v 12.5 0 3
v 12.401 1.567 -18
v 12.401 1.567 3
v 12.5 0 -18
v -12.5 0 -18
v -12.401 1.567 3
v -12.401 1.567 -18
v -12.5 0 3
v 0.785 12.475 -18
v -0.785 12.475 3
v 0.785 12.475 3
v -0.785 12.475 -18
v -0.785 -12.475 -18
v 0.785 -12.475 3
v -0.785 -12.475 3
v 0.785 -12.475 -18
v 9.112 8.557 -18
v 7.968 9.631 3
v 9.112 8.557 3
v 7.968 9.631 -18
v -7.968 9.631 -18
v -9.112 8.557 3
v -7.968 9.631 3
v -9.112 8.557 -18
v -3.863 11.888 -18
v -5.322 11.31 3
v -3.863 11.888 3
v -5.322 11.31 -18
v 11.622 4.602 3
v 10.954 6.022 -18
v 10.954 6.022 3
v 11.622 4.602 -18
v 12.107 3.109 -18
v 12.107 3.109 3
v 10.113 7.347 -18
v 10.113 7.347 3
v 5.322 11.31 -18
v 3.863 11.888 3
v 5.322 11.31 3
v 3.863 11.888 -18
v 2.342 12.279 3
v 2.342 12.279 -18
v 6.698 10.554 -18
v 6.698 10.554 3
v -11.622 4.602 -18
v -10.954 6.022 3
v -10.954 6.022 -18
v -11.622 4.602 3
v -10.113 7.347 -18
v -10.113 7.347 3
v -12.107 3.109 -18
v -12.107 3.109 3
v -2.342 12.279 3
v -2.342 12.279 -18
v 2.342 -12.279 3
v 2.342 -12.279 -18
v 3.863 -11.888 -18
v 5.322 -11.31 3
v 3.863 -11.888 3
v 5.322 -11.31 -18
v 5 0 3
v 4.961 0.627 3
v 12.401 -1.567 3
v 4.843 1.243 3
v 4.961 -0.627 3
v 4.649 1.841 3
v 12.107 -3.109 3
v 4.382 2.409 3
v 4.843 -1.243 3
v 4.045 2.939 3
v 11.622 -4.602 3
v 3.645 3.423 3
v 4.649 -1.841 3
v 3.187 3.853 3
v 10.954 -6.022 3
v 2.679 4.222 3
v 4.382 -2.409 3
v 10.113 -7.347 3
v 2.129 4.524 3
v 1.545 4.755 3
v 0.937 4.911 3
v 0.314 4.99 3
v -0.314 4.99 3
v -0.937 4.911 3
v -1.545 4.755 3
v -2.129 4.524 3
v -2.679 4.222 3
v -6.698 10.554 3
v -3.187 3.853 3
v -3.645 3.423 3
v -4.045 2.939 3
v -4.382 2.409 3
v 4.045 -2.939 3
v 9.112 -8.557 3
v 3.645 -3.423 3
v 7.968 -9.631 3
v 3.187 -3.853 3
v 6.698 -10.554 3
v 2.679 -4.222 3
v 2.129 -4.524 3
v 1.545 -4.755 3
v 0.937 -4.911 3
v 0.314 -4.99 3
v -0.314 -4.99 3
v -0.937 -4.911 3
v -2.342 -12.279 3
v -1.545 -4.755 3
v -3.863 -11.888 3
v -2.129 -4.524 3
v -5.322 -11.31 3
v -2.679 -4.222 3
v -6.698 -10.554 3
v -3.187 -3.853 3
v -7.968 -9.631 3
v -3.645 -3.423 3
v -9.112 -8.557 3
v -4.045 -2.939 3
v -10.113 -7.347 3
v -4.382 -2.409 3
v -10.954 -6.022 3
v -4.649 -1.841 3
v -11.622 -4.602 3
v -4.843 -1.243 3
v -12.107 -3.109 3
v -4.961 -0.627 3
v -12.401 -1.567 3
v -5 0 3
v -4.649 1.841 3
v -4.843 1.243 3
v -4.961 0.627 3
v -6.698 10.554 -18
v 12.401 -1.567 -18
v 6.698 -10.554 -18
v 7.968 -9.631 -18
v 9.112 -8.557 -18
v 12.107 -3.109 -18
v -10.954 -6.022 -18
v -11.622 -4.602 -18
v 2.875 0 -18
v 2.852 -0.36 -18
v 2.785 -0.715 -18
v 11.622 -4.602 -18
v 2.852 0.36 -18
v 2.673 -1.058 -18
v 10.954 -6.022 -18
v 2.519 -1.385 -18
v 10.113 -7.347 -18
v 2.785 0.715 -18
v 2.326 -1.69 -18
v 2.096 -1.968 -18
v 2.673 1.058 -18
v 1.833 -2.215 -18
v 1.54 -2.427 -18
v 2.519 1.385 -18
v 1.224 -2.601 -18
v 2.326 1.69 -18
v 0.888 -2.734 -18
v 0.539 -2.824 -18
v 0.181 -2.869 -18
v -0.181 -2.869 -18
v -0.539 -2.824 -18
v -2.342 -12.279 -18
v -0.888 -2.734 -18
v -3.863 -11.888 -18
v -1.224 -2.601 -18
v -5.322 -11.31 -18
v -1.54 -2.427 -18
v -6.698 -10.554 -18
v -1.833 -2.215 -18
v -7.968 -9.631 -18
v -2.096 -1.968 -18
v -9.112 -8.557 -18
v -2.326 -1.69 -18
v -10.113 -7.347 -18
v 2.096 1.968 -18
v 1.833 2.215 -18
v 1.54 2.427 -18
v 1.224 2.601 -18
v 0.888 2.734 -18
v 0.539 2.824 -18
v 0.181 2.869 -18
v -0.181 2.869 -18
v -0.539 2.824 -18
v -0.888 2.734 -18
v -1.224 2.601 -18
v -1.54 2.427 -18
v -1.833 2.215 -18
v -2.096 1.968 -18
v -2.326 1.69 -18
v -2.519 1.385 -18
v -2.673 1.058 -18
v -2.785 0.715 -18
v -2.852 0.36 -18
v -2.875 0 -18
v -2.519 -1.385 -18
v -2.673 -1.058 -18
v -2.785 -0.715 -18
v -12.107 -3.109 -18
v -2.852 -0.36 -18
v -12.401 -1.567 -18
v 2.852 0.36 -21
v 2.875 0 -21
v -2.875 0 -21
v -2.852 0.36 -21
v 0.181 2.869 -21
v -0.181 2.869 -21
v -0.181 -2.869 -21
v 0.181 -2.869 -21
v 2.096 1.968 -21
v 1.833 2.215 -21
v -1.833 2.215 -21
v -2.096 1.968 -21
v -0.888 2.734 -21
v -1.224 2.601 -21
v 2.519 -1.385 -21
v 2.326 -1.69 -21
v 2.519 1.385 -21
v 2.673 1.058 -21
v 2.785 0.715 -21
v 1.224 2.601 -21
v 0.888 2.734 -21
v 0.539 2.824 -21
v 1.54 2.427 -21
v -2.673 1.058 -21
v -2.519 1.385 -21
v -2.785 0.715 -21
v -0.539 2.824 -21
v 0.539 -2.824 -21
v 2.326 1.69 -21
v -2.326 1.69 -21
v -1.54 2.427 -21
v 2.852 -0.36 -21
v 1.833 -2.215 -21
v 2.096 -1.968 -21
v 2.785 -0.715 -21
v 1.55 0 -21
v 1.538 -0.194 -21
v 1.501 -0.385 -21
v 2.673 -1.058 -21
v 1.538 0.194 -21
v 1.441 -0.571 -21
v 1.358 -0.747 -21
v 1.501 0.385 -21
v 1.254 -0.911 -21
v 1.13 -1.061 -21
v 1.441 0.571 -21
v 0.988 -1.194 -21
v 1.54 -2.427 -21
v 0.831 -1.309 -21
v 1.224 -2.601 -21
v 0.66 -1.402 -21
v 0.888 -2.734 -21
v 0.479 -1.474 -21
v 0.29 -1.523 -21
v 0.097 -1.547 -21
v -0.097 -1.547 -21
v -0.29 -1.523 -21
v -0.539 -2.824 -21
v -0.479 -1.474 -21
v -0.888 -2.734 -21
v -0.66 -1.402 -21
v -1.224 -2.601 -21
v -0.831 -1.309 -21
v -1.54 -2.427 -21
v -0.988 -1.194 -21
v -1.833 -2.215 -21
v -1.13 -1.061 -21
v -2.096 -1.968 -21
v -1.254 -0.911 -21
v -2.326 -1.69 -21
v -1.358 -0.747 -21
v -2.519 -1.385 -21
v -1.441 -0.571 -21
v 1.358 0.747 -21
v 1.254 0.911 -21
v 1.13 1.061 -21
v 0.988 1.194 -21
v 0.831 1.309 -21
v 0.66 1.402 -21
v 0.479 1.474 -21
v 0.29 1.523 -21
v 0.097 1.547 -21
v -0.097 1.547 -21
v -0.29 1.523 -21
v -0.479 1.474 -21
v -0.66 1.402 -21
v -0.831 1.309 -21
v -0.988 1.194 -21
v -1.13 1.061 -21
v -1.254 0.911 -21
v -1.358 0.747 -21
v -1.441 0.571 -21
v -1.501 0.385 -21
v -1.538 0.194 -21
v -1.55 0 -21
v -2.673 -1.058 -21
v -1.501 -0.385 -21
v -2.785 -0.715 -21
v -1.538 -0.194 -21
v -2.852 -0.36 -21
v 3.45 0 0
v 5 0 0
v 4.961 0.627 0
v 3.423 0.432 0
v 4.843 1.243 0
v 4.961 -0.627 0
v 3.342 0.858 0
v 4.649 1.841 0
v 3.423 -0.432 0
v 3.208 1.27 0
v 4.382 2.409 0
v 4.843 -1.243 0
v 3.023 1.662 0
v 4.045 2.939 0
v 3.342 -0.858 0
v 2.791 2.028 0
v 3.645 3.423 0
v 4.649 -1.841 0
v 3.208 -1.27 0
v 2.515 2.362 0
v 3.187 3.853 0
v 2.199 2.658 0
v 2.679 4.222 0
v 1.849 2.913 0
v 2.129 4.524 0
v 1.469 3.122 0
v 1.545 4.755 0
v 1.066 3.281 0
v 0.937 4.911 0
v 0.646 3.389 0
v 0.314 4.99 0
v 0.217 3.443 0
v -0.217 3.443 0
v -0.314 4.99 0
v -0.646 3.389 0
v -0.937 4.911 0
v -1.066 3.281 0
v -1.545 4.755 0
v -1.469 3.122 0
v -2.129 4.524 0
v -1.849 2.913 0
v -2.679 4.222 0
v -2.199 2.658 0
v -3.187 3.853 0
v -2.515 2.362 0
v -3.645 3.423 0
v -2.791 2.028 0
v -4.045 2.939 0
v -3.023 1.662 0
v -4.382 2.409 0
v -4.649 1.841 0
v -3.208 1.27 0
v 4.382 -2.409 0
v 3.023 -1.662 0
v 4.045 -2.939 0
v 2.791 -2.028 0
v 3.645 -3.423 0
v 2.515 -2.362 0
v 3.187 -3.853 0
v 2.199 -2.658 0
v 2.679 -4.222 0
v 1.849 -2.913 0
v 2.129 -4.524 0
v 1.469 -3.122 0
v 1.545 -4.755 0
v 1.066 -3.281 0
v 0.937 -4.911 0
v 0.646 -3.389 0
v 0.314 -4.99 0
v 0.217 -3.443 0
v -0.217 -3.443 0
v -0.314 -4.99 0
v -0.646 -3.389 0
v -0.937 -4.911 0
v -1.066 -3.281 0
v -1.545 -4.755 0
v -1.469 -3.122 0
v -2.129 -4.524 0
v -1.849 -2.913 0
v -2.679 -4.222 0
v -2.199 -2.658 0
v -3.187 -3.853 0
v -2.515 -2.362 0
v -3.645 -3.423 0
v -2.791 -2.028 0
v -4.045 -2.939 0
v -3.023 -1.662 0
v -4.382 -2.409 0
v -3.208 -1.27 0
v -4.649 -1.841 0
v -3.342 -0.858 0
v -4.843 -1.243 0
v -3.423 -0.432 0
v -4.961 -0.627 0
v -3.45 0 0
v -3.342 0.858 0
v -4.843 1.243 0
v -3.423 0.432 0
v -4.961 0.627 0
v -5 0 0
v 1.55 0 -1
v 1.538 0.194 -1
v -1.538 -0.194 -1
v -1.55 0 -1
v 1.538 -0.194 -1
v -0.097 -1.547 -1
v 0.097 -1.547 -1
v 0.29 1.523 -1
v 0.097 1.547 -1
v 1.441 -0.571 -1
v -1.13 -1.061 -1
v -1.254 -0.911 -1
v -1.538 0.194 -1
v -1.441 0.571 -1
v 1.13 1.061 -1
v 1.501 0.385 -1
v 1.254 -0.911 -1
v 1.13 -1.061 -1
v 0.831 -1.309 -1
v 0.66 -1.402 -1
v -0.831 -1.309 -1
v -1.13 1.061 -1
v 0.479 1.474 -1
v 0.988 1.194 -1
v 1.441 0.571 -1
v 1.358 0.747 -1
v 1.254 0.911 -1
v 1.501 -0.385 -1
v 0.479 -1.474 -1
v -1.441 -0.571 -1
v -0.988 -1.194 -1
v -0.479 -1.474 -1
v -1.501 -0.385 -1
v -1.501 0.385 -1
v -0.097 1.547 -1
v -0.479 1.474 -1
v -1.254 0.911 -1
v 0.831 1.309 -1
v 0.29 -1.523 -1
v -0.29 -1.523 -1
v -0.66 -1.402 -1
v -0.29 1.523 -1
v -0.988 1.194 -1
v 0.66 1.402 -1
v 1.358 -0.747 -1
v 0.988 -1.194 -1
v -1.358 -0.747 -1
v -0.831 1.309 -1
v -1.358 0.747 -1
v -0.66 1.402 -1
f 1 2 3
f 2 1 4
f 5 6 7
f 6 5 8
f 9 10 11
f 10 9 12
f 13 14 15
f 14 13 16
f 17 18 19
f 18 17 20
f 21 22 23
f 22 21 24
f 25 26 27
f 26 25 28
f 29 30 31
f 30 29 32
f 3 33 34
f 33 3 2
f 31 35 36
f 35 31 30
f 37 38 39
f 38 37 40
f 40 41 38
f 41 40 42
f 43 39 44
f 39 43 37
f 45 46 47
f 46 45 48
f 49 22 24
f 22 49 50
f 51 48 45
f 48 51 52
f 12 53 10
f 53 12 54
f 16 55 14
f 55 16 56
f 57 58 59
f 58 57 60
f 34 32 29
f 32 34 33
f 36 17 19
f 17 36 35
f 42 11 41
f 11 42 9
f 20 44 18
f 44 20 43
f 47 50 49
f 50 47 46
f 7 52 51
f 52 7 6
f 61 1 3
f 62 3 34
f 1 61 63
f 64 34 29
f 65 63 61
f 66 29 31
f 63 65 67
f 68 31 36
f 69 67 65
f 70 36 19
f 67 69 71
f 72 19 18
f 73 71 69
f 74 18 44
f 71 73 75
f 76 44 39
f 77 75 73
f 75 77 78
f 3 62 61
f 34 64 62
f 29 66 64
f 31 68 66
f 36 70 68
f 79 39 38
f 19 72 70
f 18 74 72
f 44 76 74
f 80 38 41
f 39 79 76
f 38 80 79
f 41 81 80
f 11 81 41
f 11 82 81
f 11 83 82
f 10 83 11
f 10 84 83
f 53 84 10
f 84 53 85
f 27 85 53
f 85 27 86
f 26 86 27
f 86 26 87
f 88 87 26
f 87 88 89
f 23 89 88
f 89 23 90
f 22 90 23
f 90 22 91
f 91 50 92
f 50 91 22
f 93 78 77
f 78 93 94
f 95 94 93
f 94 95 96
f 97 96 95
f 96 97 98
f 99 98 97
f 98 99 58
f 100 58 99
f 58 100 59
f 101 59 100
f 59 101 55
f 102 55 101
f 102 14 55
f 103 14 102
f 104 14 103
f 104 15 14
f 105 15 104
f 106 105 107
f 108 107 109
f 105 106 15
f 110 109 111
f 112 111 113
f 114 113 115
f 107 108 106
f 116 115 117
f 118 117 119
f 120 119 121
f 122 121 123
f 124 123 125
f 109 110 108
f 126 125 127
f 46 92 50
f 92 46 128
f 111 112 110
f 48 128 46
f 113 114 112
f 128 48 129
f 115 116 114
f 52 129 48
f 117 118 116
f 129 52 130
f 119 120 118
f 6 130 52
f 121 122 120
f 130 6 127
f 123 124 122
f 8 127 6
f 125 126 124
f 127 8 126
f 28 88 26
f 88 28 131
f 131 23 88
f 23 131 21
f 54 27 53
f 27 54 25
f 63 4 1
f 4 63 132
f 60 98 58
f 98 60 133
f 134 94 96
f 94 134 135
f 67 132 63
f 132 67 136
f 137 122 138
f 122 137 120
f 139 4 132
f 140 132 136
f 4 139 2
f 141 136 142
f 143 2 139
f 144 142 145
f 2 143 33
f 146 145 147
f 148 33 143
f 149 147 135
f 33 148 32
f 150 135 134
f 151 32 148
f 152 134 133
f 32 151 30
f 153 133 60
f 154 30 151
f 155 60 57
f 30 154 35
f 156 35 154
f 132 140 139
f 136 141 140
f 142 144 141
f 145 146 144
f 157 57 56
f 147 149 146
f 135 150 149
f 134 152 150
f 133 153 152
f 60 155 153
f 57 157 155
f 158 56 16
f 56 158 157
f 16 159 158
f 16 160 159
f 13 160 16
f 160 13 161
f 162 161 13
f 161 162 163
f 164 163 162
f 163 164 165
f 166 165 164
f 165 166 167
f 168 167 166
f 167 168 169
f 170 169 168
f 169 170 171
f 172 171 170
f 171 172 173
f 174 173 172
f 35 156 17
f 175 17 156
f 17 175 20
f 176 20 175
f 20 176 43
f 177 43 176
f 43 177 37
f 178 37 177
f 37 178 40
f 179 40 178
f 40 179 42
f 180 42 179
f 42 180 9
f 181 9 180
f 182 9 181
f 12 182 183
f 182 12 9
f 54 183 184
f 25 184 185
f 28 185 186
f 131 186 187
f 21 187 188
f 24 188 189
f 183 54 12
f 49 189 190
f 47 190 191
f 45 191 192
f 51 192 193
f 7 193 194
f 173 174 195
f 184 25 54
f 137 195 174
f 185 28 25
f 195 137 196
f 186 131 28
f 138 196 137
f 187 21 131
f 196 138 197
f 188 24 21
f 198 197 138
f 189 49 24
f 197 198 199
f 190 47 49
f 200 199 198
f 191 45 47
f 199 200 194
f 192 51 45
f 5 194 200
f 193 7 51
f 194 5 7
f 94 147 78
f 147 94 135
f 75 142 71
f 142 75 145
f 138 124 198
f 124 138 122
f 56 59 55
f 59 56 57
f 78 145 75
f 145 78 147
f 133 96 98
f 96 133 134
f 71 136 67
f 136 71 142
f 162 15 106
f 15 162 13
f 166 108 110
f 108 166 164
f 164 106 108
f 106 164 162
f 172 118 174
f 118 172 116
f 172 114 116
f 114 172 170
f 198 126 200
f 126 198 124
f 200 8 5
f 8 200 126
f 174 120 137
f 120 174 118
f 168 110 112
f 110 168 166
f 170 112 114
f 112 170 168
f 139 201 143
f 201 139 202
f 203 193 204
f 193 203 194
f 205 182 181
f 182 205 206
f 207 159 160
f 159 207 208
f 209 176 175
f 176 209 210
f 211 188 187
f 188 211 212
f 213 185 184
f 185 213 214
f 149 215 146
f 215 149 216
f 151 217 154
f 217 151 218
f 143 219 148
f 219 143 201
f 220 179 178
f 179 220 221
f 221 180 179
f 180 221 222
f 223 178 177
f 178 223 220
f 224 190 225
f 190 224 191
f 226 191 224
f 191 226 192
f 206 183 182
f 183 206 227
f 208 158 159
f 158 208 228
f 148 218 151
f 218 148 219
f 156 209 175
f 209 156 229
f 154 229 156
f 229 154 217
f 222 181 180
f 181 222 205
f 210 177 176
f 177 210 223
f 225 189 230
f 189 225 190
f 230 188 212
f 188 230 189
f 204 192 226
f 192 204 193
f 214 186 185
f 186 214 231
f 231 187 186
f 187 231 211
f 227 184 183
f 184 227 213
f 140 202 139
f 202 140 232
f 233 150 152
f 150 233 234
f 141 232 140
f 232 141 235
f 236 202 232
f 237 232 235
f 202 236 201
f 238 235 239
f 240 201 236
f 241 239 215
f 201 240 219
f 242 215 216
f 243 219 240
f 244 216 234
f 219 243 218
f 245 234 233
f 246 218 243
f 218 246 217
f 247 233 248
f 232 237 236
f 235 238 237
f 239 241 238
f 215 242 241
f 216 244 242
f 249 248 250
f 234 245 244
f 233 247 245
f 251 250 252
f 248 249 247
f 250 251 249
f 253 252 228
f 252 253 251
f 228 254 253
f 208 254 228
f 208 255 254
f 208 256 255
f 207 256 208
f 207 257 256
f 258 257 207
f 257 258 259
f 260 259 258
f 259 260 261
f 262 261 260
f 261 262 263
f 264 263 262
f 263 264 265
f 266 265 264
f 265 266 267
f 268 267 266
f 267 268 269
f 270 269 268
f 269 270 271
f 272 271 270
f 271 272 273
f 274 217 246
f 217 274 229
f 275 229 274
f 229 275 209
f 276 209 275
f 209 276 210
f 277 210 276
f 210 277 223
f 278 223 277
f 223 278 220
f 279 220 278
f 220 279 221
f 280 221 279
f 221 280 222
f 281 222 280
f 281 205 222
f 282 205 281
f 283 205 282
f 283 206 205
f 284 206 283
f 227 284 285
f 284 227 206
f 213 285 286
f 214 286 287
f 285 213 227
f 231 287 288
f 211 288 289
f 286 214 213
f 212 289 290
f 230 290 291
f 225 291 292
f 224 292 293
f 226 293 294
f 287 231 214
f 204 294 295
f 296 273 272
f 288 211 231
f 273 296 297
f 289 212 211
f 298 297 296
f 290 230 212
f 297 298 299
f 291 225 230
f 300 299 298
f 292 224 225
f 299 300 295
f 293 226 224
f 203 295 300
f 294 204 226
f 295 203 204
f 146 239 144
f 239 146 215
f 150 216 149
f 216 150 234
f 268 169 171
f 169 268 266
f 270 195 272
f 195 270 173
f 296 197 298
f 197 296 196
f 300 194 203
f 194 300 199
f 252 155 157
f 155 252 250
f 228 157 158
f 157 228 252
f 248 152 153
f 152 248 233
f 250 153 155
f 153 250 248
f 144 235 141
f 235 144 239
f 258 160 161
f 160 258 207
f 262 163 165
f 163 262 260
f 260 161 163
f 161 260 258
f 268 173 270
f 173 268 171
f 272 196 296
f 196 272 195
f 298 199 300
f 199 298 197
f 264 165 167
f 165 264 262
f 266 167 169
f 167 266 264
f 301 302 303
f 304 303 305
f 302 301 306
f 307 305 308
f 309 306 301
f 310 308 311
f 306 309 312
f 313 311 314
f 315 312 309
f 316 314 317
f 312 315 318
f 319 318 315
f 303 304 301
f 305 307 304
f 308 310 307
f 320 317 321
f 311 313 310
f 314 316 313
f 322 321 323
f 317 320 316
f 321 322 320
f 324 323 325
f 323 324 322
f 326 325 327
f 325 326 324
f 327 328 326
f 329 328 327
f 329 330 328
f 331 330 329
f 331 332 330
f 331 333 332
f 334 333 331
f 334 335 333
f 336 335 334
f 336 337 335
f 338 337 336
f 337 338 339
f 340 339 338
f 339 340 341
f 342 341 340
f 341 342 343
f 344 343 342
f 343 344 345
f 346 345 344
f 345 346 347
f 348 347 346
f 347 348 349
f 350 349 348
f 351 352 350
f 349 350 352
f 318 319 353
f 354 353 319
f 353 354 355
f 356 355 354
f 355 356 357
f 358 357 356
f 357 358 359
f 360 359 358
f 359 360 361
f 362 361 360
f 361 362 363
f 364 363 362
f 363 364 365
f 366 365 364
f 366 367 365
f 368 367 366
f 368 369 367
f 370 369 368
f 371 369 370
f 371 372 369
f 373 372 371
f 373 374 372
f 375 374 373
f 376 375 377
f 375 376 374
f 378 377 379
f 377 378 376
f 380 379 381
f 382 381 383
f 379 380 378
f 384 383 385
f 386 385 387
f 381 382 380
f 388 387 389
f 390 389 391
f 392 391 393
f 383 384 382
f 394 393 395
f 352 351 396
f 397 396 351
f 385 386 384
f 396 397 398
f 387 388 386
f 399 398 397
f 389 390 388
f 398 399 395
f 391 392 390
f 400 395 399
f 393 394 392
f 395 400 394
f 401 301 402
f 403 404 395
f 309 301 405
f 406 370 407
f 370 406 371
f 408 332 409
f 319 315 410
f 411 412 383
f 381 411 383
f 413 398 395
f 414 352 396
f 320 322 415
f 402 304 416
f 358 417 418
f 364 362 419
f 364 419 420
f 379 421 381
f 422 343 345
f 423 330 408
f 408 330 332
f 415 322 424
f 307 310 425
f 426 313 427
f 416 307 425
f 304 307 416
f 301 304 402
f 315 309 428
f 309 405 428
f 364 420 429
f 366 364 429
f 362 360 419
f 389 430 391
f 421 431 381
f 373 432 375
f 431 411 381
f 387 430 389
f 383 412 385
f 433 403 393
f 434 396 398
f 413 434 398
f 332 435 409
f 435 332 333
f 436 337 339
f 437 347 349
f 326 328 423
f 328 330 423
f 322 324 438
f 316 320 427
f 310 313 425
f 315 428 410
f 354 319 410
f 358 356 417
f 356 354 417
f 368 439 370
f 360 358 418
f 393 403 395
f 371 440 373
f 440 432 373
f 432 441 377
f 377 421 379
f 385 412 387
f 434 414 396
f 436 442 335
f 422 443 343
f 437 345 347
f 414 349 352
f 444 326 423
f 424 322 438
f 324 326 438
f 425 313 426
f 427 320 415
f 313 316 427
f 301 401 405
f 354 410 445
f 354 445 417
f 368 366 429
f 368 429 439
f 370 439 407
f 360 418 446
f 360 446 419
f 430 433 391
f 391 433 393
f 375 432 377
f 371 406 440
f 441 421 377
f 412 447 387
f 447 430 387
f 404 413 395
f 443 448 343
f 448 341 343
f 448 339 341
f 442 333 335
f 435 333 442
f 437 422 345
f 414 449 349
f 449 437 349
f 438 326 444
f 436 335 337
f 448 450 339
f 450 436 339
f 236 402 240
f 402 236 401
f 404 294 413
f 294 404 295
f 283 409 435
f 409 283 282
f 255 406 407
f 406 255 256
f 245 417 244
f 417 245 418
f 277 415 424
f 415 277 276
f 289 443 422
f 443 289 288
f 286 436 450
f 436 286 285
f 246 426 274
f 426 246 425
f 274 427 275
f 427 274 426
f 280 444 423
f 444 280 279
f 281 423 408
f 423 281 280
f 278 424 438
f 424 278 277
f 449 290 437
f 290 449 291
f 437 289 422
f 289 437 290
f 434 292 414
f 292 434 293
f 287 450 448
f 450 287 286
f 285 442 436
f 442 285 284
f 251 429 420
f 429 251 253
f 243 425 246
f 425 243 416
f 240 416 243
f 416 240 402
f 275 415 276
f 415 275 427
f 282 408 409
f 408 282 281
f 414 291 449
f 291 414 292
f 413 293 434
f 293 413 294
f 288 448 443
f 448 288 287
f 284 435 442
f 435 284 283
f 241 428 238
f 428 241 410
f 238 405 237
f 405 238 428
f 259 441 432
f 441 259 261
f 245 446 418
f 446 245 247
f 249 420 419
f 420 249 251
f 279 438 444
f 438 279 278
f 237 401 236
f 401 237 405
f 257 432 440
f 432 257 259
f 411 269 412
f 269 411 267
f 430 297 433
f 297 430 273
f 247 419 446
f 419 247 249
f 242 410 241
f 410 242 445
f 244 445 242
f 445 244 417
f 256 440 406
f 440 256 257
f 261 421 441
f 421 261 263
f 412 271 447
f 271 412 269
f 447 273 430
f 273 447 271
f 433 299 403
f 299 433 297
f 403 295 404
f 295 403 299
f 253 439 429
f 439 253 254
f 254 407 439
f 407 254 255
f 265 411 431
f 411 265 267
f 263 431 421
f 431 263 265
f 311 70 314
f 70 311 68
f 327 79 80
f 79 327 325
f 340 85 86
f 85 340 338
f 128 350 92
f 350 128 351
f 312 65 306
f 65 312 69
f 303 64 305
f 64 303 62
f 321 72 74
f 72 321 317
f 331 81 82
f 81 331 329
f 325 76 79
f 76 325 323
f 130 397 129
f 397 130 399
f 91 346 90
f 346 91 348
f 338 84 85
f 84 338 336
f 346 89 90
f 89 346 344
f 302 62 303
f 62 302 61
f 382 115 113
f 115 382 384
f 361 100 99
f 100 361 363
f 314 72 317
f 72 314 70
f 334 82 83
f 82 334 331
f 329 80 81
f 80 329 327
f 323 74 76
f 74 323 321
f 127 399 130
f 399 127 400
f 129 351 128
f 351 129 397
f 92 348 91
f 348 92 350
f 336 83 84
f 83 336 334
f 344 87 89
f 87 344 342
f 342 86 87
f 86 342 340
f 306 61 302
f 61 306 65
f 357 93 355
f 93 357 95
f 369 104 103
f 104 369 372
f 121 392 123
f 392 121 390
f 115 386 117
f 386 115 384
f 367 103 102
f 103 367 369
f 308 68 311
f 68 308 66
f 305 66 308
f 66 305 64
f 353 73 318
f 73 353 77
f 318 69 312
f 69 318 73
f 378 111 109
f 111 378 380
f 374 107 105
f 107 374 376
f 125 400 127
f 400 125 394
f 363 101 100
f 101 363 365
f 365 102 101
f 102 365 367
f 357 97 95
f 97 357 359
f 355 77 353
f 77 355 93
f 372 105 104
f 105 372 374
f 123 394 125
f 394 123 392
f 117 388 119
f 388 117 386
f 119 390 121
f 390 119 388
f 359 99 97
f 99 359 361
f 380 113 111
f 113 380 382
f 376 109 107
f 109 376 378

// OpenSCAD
$fn = 50;


difference() {
	union() {
		translate(v = [0, 0, -18.0000000000]) {
			cylinder(h = 21, r = 12.5000000000);
		}
		#translate(v = [0, 0, -21.0000000000]) {
			cylinder(h = 21, r = 2.8750000000);
		}
	}
	union() {
		translate(v = [0, 0, 0]) {
			rotate(a = [0, 0, 0]) {
				difference() {
					union() {
						translate(v = [0, 0, -21.0000000000]) {
							cylinder(h = 21, r = 1.2500000000);
						}
						translate(v = [0, 0, -1.0000000000]) {
							cylinder(h = 1.0000000000, r1 = 1.5500000000, r2 = 3.4500000000);
						}
						translate(v = [0, 0, -21.0000000000]) {
							cylinder(h = 21, r = 1.5500000000);
						}
						translate(v = [0, 0, -21.0000000000]) {
							cylinder(h = 21, r = 1.2500000000);
						}
					}
					union();
				}
			}
		}
		#cylinder(h = 3, r = 5.0000000000);
	}
}
